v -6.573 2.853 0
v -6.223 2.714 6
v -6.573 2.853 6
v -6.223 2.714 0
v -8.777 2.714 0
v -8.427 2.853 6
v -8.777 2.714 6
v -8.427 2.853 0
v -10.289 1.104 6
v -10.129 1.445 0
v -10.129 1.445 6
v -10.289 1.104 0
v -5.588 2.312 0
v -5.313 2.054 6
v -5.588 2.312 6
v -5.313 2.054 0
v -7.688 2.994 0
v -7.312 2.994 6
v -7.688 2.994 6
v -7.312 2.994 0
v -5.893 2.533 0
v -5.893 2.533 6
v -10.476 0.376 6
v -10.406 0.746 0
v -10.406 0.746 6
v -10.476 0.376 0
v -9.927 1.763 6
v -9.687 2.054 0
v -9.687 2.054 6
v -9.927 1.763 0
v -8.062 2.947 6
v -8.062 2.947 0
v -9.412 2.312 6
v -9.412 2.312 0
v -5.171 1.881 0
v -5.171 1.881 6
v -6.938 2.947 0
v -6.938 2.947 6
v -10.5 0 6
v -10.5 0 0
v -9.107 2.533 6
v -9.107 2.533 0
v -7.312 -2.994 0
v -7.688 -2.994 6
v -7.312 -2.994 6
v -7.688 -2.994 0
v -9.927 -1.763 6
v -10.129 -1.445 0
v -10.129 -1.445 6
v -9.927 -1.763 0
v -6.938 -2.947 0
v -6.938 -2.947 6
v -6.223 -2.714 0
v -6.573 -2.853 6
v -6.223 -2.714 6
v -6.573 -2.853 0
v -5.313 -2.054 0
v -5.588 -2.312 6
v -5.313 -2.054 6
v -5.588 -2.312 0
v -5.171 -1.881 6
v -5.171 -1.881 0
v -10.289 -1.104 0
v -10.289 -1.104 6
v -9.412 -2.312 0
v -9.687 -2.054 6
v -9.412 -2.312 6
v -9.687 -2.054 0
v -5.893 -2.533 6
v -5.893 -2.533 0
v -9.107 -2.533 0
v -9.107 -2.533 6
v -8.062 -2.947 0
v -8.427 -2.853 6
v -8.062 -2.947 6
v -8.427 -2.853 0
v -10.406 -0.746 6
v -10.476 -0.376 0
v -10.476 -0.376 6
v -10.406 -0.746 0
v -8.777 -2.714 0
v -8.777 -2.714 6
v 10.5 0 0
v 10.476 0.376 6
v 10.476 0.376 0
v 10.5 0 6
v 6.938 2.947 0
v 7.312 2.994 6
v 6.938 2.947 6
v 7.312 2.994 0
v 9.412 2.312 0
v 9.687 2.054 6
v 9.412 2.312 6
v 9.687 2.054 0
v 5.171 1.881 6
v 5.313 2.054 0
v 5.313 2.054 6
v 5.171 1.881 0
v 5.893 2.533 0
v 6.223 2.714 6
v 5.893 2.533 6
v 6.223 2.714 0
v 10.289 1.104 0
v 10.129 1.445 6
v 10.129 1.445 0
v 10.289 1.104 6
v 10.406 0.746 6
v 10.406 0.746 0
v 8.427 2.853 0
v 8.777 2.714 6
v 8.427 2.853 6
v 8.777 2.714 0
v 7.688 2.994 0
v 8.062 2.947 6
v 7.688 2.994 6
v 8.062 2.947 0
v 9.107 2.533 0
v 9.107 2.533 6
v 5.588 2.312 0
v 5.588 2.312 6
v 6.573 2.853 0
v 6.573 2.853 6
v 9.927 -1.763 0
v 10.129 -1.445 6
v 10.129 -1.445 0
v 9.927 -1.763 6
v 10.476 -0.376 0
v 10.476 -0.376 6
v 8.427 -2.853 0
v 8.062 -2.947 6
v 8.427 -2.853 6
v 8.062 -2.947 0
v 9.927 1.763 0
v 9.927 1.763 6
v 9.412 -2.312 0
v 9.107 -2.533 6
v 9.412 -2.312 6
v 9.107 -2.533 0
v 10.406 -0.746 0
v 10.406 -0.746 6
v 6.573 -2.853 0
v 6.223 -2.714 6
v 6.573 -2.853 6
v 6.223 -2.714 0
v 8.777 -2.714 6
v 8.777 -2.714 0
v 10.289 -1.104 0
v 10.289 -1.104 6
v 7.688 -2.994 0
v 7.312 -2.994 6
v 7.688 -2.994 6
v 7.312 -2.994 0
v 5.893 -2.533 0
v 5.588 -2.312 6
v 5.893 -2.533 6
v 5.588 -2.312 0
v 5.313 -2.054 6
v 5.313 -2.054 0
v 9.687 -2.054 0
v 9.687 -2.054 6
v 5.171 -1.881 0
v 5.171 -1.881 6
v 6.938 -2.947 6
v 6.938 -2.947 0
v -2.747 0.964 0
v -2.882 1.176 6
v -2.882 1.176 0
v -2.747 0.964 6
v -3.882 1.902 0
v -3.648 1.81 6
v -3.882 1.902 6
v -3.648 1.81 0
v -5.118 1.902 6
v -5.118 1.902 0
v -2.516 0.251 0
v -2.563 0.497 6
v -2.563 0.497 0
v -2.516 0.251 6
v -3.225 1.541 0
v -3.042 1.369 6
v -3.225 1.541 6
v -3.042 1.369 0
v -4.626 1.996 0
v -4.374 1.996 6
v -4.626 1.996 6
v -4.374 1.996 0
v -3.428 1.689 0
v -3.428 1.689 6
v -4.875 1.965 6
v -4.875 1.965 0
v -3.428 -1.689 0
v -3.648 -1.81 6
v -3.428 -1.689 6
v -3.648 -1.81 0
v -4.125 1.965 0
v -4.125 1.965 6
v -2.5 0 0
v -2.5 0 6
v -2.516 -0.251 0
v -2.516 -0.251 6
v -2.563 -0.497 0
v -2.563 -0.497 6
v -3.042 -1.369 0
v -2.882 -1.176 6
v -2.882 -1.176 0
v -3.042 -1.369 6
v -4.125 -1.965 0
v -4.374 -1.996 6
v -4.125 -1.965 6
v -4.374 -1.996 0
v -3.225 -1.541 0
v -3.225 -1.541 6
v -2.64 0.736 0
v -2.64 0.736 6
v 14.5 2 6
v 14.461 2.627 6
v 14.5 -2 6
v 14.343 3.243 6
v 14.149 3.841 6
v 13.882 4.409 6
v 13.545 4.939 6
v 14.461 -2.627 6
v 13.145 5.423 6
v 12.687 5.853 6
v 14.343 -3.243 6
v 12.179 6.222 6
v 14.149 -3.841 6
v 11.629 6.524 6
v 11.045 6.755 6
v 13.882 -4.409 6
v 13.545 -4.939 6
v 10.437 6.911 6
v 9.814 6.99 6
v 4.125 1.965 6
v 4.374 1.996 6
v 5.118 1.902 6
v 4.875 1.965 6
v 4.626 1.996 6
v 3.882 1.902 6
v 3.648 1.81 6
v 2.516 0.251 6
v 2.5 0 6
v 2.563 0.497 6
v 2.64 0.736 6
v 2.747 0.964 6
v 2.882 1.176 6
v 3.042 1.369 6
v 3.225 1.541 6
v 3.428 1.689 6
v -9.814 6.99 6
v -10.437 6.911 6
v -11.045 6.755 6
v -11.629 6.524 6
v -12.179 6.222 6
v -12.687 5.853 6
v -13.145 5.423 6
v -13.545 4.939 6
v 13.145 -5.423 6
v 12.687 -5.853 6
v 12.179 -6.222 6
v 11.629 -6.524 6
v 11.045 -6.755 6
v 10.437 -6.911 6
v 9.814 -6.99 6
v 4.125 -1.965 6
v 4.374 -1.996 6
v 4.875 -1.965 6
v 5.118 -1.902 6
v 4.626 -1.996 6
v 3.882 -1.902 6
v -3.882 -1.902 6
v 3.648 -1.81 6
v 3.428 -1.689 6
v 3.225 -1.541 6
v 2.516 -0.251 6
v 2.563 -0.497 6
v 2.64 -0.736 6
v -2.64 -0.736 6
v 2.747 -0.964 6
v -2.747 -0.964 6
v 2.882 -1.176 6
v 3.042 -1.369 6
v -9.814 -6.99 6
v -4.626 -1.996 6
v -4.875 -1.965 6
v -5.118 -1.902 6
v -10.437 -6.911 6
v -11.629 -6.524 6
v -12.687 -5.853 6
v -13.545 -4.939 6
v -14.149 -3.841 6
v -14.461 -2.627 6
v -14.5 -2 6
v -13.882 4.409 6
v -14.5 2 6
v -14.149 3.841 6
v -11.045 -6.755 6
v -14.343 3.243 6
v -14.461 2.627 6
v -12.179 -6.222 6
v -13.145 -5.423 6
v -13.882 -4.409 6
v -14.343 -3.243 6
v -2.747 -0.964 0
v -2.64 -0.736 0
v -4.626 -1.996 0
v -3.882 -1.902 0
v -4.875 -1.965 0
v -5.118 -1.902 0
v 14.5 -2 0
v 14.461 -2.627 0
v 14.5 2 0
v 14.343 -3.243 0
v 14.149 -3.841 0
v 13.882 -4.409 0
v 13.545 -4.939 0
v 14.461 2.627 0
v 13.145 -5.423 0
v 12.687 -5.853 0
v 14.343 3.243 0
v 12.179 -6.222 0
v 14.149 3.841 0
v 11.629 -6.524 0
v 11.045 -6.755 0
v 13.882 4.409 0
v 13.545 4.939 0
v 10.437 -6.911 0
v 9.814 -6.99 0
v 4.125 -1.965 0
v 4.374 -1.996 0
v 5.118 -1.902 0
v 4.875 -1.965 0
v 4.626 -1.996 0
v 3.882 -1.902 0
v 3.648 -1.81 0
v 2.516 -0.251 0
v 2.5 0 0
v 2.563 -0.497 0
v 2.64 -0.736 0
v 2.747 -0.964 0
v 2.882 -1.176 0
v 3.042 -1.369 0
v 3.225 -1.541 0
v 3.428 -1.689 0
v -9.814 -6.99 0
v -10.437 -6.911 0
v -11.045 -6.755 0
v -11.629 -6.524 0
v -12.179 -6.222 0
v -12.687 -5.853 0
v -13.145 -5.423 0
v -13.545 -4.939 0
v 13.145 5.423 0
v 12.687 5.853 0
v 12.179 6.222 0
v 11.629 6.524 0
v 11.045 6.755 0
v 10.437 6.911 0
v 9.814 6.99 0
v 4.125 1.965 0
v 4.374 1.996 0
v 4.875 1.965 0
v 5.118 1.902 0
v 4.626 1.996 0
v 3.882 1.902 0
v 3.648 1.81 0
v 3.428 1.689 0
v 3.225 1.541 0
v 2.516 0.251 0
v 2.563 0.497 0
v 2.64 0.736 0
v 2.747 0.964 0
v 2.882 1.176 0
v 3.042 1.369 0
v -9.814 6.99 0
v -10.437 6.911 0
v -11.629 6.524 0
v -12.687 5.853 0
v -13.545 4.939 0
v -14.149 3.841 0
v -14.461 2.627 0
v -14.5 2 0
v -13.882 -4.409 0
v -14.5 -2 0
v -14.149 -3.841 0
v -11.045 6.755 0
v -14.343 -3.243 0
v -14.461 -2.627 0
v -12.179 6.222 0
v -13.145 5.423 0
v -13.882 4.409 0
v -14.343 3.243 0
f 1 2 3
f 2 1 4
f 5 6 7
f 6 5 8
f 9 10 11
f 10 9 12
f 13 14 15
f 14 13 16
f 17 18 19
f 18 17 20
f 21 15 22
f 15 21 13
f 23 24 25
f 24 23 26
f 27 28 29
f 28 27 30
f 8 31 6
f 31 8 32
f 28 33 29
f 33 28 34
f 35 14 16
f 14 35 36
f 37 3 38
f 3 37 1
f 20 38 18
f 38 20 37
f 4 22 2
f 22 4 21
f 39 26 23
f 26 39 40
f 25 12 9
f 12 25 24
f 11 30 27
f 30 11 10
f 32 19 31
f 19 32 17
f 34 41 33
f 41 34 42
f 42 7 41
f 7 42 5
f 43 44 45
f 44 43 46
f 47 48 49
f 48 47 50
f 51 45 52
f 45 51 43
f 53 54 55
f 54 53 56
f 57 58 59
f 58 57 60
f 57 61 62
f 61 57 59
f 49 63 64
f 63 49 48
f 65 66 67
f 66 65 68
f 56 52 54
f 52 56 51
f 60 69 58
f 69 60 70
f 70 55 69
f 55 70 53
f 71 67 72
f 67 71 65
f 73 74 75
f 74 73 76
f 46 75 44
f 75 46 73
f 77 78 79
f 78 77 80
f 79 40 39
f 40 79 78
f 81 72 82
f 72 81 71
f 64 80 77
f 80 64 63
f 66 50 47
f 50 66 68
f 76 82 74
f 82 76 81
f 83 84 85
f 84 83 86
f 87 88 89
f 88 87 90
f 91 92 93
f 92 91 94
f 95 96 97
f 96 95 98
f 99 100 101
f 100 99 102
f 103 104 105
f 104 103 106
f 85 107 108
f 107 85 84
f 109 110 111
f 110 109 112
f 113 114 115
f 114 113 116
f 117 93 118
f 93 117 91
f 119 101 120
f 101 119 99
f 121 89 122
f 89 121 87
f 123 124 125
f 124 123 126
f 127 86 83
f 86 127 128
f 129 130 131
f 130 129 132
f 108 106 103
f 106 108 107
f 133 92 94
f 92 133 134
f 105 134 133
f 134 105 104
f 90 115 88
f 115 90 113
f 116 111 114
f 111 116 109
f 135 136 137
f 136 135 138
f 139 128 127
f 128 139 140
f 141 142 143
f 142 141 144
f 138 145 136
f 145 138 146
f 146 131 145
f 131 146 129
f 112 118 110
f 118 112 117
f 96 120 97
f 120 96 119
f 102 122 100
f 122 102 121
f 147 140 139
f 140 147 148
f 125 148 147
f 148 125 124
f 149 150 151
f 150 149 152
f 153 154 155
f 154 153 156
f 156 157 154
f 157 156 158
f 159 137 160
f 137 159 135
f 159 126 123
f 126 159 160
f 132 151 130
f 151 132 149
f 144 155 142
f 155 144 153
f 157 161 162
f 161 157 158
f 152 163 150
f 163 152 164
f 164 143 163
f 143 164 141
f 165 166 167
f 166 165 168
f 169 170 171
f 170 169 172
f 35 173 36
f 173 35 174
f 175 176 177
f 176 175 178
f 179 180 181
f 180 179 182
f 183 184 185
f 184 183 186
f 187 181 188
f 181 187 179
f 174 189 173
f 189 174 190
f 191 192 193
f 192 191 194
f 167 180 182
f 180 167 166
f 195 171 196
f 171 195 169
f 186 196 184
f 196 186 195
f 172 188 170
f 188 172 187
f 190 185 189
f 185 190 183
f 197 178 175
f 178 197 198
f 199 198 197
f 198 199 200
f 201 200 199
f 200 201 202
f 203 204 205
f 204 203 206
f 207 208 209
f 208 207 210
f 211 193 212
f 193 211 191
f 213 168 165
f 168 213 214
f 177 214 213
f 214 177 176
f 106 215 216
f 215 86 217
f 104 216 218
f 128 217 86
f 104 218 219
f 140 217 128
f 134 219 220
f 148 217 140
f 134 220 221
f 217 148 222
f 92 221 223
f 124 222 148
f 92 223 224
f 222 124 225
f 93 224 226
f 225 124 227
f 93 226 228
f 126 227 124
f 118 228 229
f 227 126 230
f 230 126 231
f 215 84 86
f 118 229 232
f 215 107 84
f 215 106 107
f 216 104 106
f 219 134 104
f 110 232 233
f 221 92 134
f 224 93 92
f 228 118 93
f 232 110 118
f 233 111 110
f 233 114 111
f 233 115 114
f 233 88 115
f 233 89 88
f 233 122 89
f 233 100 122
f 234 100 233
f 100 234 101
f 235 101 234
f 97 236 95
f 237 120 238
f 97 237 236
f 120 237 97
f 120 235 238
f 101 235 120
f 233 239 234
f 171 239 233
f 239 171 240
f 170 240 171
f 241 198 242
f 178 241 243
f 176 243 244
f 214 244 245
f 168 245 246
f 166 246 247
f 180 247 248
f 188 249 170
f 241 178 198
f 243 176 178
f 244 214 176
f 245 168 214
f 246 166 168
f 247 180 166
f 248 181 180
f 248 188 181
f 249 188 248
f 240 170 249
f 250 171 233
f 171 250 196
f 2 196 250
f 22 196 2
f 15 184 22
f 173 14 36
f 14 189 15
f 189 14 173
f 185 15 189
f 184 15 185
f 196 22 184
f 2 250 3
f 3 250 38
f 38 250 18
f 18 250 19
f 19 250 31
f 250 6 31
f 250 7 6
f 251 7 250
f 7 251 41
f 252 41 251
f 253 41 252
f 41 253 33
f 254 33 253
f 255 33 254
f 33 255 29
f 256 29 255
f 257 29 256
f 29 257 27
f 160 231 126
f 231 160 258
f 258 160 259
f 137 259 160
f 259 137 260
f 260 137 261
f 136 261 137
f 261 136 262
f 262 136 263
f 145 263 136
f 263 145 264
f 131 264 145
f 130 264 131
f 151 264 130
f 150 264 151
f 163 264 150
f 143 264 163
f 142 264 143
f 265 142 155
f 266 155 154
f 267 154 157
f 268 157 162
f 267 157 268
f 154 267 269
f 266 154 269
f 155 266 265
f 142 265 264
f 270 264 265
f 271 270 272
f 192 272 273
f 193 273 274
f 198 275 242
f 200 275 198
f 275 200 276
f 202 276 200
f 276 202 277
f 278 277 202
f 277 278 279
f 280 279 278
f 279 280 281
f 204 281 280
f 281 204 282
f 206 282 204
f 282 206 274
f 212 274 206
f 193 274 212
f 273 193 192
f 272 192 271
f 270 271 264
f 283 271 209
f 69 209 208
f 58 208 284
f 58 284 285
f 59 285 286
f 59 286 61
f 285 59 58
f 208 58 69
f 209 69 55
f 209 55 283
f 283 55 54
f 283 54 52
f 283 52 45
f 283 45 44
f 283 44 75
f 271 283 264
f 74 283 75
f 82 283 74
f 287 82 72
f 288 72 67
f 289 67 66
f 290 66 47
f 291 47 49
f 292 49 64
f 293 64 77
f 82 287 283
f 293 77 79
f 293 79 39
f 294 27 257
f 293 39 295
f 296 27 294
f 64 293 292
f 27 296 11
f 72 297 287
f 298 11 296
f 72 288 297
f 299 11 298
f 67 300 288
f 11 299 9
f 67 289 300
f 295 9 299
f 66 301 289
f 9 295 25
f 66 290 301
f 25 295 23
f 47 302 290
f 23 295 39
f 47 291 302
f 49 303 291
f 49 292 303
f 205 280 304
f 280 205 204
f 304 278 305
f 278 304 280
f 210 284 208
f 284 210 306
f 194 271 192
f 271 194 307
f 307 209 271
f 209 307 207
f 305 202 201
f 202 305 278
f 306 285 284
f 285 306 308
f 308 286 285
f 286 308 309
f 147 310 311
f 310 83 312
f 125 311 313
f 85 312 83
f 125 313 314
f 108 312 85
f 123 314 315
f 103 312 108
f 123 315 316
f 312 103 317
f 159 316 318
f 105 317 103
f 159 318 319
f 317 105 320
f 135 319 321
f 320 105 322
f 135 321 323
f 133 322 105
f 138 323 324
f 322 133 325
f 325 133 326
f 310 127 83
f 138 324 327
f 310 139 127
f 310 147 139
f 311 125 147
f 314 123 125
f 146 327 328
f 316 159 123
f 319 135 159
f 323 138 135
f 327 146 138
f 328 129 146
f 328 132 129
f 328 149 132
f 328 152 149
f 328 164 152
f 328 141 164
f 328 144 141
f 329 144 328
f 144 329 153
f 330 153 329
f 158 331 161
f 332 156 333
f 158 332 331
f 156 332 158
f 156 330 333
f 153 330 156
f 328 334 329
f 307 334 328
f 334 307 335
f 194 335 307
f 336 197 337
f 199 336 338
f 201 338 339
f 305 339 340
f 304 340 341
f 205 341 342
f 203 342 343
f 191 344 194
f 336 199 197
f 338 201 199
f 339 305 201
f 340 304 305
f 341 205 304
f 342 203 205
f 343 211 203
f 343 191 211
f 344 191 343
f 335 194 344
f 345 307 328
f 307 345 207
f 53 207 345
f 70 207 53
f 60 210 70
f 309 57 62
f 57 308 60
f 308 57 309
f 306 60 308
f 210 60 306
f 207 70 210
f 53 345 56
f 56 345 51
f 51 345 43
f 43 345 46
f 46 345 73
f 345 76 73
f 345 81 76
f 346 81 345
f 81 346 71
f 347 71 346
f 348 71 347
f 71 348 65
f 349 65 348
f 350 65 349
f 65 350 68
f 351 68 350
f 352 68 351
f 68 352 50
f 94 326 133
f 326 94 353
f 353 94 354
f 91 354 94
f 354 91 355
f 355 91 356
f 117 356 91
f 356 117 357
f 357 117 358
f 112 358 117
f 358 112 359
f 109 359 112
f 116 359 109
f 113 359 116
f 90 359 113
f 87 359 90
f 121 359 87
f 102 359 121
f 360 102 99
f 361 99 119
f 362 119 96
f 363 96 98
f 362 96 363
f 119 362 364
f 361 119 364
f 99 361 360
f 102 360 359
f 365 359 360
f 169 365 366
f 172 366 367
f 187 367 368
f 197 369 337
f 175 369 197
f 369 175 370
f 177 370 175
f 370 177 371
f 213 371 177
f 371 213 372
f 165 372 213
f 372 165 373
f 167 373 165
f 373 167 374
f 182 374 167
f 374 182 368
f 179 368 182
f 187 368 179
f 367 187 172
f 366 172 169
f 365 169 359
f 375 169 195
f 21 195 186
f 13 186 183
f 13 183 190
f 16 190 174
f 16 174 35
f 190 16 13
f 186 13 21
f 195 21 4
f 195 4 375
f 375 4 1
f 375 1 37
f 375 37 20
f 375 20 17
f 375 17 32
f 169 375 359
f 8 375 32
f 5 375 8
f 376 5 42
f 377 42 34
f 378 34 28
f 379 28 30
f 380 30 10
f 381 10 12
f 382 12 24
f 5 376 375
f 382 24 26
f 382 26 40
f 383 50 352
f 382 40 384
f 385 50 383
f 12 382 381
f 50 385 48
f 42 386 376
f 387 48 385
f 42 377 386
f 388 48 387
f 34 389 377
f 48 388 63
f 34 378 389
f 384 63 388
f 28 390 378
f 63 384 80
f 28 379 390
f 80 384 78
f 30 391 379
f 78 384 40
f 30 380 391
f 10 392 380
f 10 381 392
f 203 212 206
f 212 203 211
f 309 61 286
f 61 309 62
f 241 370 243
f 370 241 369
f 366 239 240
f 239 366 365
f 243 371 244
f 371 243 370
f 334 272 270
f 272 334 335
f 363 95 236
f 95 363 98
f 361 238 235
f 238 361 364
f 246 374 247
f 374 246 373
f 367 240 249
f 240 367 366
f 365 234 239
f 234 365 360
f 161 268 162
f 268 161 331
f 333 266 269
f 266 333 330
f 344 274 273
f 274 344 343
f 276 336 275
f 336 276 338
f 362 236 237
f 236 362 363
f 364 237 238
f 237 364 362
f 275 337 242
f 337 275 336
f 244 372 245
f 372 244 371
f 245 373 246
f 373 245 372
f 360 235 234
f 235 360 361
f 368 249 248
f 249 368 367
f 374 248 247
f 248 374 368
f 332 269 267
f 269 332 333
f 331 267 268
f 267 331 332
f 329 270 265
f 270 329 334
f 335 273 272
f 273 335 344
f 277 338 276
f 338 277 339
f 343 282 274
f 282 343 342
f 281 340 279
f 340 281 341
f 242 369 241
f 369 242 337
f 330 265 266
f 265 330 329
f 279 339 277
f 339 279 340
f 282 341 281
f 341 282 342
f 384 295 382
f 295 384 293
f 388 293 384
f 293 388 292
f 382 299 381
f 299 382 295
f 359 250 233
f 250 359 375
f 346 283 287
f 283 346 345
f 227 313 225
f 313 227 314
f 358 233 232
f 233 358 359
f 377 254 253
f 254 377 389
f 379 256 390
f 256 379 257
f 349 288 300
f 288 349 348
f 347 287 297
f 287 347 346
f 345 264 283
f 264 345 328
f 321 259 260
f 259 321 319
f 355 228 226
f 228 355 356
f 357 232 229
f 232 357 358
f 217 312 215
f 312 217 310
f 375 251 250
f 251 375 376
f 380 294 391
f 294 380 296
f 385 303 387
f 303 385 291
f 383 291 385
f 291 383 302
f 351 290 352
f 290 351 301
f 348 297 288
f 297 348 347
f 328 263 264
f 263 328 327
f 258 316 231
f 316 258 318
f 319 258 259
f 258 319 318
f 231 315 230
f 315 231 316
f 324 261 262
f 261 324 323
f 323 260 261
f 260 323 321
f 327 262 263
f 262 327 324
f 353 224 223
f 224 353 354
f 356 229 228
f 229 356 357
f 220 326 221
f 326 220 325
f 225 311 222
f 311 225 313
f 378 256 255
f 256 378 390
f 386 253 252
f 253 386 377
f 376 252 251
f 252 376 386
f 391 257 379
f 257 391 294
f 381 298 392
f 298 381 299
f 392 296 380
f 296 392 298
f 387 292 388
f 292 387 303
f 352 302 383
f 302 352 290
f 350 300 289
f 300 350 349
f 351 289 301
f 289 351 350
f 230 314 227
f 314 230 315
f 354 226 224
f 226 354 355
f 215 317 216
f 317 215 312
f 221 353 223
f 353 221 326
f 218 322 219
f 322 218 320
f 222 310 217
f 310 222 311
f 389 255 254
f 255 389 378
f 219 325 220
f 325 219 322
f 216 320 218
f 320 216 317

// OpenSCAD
$fn = 50;


difference() {
	union() {
		hull() {
			translate(v = [-9.5000000000, 2.0000000000, 0]) {
				cylinder(h = 6, r = 5);
			}
			translate(v = [9.5000000000, 2.0000000000, 0]) {
				cylinder(h = 6, r = 5);
			}
			translate(v = [-9.5000000000, -2.0000000000, 0]) {
				cylinder(h = 6, r = 5);
			}
			translate(v = [9.5000000000, -2.0000000000, 0]) {
				cylinder(h = 6, r = 5);
			}
		}
	}
	union() {
		#translate(v = [-7.5000000000, 0.0000000000, -100.0000000000]) {
			cylinder(h = 200, r = 3.0000000000);
		}
		#translate(v = [-7.5000000000, 0.0000000000, -100.0000000000]) {
			cylinder(h = 200, r = 3.0000000000);
		}
		#translate(v = [7.5000000000, 0.0000000000, -100.0000000000]) {
			cylinder(h = 200, r = 3.0000000000);
		}
		#translate(v = [7.5000000000, 0.0000000000, -100.0000000000]) {
			cylinder(h = 200, r = 3.0000000000);
		}
		#translate(v = [-4.5000000000, 0, 0]) {
			cylinder(h = 6, r = 2.0000000000);
		}
		#translate(v = [4.5000000000, 0, 0]) {
			cylinder(h = 6, r = 2.0000000000);
		}
	}
}
